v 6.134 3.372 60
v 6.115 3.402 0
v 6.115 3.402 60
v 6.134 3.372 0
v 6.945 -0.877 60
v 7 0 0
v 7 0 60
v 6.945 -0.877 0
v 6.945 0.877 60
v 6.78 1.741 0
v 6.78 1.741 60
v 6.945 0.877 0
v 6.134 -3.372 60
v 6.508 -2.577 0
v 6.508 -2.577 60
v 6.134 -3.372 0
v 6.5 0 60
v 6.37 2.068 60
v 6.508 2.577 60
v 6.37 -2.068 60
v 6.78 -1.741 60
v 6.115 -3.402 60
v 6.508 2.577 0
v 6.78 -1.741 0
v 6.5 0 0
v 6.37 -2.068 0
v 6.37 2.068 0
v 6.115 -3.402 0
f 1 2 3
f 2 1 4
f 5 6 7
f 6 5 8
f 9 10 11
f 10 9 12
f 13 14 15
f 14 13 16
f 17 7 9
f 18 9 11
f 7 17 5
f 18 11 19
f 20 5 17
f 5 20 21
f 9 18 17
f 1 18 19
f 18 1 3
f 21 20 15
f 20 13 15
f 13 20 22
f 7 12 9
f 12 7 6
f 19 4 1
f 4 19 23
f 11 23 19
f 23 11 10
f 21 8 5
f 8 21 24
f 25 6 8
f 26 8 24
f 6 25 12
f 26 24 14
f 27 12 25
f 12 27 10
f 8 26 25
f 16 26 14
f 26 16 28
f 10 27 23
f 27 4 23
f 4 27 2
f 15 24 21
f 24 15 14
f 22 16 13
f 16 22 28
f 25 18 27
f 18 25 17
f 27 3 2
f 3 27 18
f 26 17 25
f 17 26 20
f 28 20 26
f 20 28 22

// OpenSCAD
$fn = 50;


difference() {
	union() {
		cylinder(h = 60, r = 7.0000000000);
		translate(v = [-13.0000000000, 0, 0]) {
			cylinder(h = 60, r = 7.0000000000);
		}
	}
	union() {
		cylinder(h = 60, r = 3.2500000000);
		cylinder(h = 60, r = 1.8000000000);
		cylinder(h = 60, r = 1.8000000000);
		cylinder(h = 60, r = 1.8000000000);
		translate(v = [-17.5000000000, 0, 0]) {
			hull() {
				translate(v = [-3.7500000000, 0.0000000000, 0]) {
					cylinder(h = 60, r = 7.5000000000);
				}
				translate(v = [3.7500000000, 0.0000000000, 0]) {
					cylinder(h = 60, r = 7.5000000000);
				}
				translate(v = [-3.7500000000, -0.0000000000, 0]) {
					cylinder(h = 60, r = 7.5000000000);
				}
				translate(v = [3.7500000000, -0.0000000000, 0]) {
					cylinder(h = 60, r = 7.5000000000);
				}
			}
		}
		translate(v = [-10.0000000000, 0, 0.0000000000]) {
			cylinder(h = 60, r = 16.5000000000);
		}
	}
}
